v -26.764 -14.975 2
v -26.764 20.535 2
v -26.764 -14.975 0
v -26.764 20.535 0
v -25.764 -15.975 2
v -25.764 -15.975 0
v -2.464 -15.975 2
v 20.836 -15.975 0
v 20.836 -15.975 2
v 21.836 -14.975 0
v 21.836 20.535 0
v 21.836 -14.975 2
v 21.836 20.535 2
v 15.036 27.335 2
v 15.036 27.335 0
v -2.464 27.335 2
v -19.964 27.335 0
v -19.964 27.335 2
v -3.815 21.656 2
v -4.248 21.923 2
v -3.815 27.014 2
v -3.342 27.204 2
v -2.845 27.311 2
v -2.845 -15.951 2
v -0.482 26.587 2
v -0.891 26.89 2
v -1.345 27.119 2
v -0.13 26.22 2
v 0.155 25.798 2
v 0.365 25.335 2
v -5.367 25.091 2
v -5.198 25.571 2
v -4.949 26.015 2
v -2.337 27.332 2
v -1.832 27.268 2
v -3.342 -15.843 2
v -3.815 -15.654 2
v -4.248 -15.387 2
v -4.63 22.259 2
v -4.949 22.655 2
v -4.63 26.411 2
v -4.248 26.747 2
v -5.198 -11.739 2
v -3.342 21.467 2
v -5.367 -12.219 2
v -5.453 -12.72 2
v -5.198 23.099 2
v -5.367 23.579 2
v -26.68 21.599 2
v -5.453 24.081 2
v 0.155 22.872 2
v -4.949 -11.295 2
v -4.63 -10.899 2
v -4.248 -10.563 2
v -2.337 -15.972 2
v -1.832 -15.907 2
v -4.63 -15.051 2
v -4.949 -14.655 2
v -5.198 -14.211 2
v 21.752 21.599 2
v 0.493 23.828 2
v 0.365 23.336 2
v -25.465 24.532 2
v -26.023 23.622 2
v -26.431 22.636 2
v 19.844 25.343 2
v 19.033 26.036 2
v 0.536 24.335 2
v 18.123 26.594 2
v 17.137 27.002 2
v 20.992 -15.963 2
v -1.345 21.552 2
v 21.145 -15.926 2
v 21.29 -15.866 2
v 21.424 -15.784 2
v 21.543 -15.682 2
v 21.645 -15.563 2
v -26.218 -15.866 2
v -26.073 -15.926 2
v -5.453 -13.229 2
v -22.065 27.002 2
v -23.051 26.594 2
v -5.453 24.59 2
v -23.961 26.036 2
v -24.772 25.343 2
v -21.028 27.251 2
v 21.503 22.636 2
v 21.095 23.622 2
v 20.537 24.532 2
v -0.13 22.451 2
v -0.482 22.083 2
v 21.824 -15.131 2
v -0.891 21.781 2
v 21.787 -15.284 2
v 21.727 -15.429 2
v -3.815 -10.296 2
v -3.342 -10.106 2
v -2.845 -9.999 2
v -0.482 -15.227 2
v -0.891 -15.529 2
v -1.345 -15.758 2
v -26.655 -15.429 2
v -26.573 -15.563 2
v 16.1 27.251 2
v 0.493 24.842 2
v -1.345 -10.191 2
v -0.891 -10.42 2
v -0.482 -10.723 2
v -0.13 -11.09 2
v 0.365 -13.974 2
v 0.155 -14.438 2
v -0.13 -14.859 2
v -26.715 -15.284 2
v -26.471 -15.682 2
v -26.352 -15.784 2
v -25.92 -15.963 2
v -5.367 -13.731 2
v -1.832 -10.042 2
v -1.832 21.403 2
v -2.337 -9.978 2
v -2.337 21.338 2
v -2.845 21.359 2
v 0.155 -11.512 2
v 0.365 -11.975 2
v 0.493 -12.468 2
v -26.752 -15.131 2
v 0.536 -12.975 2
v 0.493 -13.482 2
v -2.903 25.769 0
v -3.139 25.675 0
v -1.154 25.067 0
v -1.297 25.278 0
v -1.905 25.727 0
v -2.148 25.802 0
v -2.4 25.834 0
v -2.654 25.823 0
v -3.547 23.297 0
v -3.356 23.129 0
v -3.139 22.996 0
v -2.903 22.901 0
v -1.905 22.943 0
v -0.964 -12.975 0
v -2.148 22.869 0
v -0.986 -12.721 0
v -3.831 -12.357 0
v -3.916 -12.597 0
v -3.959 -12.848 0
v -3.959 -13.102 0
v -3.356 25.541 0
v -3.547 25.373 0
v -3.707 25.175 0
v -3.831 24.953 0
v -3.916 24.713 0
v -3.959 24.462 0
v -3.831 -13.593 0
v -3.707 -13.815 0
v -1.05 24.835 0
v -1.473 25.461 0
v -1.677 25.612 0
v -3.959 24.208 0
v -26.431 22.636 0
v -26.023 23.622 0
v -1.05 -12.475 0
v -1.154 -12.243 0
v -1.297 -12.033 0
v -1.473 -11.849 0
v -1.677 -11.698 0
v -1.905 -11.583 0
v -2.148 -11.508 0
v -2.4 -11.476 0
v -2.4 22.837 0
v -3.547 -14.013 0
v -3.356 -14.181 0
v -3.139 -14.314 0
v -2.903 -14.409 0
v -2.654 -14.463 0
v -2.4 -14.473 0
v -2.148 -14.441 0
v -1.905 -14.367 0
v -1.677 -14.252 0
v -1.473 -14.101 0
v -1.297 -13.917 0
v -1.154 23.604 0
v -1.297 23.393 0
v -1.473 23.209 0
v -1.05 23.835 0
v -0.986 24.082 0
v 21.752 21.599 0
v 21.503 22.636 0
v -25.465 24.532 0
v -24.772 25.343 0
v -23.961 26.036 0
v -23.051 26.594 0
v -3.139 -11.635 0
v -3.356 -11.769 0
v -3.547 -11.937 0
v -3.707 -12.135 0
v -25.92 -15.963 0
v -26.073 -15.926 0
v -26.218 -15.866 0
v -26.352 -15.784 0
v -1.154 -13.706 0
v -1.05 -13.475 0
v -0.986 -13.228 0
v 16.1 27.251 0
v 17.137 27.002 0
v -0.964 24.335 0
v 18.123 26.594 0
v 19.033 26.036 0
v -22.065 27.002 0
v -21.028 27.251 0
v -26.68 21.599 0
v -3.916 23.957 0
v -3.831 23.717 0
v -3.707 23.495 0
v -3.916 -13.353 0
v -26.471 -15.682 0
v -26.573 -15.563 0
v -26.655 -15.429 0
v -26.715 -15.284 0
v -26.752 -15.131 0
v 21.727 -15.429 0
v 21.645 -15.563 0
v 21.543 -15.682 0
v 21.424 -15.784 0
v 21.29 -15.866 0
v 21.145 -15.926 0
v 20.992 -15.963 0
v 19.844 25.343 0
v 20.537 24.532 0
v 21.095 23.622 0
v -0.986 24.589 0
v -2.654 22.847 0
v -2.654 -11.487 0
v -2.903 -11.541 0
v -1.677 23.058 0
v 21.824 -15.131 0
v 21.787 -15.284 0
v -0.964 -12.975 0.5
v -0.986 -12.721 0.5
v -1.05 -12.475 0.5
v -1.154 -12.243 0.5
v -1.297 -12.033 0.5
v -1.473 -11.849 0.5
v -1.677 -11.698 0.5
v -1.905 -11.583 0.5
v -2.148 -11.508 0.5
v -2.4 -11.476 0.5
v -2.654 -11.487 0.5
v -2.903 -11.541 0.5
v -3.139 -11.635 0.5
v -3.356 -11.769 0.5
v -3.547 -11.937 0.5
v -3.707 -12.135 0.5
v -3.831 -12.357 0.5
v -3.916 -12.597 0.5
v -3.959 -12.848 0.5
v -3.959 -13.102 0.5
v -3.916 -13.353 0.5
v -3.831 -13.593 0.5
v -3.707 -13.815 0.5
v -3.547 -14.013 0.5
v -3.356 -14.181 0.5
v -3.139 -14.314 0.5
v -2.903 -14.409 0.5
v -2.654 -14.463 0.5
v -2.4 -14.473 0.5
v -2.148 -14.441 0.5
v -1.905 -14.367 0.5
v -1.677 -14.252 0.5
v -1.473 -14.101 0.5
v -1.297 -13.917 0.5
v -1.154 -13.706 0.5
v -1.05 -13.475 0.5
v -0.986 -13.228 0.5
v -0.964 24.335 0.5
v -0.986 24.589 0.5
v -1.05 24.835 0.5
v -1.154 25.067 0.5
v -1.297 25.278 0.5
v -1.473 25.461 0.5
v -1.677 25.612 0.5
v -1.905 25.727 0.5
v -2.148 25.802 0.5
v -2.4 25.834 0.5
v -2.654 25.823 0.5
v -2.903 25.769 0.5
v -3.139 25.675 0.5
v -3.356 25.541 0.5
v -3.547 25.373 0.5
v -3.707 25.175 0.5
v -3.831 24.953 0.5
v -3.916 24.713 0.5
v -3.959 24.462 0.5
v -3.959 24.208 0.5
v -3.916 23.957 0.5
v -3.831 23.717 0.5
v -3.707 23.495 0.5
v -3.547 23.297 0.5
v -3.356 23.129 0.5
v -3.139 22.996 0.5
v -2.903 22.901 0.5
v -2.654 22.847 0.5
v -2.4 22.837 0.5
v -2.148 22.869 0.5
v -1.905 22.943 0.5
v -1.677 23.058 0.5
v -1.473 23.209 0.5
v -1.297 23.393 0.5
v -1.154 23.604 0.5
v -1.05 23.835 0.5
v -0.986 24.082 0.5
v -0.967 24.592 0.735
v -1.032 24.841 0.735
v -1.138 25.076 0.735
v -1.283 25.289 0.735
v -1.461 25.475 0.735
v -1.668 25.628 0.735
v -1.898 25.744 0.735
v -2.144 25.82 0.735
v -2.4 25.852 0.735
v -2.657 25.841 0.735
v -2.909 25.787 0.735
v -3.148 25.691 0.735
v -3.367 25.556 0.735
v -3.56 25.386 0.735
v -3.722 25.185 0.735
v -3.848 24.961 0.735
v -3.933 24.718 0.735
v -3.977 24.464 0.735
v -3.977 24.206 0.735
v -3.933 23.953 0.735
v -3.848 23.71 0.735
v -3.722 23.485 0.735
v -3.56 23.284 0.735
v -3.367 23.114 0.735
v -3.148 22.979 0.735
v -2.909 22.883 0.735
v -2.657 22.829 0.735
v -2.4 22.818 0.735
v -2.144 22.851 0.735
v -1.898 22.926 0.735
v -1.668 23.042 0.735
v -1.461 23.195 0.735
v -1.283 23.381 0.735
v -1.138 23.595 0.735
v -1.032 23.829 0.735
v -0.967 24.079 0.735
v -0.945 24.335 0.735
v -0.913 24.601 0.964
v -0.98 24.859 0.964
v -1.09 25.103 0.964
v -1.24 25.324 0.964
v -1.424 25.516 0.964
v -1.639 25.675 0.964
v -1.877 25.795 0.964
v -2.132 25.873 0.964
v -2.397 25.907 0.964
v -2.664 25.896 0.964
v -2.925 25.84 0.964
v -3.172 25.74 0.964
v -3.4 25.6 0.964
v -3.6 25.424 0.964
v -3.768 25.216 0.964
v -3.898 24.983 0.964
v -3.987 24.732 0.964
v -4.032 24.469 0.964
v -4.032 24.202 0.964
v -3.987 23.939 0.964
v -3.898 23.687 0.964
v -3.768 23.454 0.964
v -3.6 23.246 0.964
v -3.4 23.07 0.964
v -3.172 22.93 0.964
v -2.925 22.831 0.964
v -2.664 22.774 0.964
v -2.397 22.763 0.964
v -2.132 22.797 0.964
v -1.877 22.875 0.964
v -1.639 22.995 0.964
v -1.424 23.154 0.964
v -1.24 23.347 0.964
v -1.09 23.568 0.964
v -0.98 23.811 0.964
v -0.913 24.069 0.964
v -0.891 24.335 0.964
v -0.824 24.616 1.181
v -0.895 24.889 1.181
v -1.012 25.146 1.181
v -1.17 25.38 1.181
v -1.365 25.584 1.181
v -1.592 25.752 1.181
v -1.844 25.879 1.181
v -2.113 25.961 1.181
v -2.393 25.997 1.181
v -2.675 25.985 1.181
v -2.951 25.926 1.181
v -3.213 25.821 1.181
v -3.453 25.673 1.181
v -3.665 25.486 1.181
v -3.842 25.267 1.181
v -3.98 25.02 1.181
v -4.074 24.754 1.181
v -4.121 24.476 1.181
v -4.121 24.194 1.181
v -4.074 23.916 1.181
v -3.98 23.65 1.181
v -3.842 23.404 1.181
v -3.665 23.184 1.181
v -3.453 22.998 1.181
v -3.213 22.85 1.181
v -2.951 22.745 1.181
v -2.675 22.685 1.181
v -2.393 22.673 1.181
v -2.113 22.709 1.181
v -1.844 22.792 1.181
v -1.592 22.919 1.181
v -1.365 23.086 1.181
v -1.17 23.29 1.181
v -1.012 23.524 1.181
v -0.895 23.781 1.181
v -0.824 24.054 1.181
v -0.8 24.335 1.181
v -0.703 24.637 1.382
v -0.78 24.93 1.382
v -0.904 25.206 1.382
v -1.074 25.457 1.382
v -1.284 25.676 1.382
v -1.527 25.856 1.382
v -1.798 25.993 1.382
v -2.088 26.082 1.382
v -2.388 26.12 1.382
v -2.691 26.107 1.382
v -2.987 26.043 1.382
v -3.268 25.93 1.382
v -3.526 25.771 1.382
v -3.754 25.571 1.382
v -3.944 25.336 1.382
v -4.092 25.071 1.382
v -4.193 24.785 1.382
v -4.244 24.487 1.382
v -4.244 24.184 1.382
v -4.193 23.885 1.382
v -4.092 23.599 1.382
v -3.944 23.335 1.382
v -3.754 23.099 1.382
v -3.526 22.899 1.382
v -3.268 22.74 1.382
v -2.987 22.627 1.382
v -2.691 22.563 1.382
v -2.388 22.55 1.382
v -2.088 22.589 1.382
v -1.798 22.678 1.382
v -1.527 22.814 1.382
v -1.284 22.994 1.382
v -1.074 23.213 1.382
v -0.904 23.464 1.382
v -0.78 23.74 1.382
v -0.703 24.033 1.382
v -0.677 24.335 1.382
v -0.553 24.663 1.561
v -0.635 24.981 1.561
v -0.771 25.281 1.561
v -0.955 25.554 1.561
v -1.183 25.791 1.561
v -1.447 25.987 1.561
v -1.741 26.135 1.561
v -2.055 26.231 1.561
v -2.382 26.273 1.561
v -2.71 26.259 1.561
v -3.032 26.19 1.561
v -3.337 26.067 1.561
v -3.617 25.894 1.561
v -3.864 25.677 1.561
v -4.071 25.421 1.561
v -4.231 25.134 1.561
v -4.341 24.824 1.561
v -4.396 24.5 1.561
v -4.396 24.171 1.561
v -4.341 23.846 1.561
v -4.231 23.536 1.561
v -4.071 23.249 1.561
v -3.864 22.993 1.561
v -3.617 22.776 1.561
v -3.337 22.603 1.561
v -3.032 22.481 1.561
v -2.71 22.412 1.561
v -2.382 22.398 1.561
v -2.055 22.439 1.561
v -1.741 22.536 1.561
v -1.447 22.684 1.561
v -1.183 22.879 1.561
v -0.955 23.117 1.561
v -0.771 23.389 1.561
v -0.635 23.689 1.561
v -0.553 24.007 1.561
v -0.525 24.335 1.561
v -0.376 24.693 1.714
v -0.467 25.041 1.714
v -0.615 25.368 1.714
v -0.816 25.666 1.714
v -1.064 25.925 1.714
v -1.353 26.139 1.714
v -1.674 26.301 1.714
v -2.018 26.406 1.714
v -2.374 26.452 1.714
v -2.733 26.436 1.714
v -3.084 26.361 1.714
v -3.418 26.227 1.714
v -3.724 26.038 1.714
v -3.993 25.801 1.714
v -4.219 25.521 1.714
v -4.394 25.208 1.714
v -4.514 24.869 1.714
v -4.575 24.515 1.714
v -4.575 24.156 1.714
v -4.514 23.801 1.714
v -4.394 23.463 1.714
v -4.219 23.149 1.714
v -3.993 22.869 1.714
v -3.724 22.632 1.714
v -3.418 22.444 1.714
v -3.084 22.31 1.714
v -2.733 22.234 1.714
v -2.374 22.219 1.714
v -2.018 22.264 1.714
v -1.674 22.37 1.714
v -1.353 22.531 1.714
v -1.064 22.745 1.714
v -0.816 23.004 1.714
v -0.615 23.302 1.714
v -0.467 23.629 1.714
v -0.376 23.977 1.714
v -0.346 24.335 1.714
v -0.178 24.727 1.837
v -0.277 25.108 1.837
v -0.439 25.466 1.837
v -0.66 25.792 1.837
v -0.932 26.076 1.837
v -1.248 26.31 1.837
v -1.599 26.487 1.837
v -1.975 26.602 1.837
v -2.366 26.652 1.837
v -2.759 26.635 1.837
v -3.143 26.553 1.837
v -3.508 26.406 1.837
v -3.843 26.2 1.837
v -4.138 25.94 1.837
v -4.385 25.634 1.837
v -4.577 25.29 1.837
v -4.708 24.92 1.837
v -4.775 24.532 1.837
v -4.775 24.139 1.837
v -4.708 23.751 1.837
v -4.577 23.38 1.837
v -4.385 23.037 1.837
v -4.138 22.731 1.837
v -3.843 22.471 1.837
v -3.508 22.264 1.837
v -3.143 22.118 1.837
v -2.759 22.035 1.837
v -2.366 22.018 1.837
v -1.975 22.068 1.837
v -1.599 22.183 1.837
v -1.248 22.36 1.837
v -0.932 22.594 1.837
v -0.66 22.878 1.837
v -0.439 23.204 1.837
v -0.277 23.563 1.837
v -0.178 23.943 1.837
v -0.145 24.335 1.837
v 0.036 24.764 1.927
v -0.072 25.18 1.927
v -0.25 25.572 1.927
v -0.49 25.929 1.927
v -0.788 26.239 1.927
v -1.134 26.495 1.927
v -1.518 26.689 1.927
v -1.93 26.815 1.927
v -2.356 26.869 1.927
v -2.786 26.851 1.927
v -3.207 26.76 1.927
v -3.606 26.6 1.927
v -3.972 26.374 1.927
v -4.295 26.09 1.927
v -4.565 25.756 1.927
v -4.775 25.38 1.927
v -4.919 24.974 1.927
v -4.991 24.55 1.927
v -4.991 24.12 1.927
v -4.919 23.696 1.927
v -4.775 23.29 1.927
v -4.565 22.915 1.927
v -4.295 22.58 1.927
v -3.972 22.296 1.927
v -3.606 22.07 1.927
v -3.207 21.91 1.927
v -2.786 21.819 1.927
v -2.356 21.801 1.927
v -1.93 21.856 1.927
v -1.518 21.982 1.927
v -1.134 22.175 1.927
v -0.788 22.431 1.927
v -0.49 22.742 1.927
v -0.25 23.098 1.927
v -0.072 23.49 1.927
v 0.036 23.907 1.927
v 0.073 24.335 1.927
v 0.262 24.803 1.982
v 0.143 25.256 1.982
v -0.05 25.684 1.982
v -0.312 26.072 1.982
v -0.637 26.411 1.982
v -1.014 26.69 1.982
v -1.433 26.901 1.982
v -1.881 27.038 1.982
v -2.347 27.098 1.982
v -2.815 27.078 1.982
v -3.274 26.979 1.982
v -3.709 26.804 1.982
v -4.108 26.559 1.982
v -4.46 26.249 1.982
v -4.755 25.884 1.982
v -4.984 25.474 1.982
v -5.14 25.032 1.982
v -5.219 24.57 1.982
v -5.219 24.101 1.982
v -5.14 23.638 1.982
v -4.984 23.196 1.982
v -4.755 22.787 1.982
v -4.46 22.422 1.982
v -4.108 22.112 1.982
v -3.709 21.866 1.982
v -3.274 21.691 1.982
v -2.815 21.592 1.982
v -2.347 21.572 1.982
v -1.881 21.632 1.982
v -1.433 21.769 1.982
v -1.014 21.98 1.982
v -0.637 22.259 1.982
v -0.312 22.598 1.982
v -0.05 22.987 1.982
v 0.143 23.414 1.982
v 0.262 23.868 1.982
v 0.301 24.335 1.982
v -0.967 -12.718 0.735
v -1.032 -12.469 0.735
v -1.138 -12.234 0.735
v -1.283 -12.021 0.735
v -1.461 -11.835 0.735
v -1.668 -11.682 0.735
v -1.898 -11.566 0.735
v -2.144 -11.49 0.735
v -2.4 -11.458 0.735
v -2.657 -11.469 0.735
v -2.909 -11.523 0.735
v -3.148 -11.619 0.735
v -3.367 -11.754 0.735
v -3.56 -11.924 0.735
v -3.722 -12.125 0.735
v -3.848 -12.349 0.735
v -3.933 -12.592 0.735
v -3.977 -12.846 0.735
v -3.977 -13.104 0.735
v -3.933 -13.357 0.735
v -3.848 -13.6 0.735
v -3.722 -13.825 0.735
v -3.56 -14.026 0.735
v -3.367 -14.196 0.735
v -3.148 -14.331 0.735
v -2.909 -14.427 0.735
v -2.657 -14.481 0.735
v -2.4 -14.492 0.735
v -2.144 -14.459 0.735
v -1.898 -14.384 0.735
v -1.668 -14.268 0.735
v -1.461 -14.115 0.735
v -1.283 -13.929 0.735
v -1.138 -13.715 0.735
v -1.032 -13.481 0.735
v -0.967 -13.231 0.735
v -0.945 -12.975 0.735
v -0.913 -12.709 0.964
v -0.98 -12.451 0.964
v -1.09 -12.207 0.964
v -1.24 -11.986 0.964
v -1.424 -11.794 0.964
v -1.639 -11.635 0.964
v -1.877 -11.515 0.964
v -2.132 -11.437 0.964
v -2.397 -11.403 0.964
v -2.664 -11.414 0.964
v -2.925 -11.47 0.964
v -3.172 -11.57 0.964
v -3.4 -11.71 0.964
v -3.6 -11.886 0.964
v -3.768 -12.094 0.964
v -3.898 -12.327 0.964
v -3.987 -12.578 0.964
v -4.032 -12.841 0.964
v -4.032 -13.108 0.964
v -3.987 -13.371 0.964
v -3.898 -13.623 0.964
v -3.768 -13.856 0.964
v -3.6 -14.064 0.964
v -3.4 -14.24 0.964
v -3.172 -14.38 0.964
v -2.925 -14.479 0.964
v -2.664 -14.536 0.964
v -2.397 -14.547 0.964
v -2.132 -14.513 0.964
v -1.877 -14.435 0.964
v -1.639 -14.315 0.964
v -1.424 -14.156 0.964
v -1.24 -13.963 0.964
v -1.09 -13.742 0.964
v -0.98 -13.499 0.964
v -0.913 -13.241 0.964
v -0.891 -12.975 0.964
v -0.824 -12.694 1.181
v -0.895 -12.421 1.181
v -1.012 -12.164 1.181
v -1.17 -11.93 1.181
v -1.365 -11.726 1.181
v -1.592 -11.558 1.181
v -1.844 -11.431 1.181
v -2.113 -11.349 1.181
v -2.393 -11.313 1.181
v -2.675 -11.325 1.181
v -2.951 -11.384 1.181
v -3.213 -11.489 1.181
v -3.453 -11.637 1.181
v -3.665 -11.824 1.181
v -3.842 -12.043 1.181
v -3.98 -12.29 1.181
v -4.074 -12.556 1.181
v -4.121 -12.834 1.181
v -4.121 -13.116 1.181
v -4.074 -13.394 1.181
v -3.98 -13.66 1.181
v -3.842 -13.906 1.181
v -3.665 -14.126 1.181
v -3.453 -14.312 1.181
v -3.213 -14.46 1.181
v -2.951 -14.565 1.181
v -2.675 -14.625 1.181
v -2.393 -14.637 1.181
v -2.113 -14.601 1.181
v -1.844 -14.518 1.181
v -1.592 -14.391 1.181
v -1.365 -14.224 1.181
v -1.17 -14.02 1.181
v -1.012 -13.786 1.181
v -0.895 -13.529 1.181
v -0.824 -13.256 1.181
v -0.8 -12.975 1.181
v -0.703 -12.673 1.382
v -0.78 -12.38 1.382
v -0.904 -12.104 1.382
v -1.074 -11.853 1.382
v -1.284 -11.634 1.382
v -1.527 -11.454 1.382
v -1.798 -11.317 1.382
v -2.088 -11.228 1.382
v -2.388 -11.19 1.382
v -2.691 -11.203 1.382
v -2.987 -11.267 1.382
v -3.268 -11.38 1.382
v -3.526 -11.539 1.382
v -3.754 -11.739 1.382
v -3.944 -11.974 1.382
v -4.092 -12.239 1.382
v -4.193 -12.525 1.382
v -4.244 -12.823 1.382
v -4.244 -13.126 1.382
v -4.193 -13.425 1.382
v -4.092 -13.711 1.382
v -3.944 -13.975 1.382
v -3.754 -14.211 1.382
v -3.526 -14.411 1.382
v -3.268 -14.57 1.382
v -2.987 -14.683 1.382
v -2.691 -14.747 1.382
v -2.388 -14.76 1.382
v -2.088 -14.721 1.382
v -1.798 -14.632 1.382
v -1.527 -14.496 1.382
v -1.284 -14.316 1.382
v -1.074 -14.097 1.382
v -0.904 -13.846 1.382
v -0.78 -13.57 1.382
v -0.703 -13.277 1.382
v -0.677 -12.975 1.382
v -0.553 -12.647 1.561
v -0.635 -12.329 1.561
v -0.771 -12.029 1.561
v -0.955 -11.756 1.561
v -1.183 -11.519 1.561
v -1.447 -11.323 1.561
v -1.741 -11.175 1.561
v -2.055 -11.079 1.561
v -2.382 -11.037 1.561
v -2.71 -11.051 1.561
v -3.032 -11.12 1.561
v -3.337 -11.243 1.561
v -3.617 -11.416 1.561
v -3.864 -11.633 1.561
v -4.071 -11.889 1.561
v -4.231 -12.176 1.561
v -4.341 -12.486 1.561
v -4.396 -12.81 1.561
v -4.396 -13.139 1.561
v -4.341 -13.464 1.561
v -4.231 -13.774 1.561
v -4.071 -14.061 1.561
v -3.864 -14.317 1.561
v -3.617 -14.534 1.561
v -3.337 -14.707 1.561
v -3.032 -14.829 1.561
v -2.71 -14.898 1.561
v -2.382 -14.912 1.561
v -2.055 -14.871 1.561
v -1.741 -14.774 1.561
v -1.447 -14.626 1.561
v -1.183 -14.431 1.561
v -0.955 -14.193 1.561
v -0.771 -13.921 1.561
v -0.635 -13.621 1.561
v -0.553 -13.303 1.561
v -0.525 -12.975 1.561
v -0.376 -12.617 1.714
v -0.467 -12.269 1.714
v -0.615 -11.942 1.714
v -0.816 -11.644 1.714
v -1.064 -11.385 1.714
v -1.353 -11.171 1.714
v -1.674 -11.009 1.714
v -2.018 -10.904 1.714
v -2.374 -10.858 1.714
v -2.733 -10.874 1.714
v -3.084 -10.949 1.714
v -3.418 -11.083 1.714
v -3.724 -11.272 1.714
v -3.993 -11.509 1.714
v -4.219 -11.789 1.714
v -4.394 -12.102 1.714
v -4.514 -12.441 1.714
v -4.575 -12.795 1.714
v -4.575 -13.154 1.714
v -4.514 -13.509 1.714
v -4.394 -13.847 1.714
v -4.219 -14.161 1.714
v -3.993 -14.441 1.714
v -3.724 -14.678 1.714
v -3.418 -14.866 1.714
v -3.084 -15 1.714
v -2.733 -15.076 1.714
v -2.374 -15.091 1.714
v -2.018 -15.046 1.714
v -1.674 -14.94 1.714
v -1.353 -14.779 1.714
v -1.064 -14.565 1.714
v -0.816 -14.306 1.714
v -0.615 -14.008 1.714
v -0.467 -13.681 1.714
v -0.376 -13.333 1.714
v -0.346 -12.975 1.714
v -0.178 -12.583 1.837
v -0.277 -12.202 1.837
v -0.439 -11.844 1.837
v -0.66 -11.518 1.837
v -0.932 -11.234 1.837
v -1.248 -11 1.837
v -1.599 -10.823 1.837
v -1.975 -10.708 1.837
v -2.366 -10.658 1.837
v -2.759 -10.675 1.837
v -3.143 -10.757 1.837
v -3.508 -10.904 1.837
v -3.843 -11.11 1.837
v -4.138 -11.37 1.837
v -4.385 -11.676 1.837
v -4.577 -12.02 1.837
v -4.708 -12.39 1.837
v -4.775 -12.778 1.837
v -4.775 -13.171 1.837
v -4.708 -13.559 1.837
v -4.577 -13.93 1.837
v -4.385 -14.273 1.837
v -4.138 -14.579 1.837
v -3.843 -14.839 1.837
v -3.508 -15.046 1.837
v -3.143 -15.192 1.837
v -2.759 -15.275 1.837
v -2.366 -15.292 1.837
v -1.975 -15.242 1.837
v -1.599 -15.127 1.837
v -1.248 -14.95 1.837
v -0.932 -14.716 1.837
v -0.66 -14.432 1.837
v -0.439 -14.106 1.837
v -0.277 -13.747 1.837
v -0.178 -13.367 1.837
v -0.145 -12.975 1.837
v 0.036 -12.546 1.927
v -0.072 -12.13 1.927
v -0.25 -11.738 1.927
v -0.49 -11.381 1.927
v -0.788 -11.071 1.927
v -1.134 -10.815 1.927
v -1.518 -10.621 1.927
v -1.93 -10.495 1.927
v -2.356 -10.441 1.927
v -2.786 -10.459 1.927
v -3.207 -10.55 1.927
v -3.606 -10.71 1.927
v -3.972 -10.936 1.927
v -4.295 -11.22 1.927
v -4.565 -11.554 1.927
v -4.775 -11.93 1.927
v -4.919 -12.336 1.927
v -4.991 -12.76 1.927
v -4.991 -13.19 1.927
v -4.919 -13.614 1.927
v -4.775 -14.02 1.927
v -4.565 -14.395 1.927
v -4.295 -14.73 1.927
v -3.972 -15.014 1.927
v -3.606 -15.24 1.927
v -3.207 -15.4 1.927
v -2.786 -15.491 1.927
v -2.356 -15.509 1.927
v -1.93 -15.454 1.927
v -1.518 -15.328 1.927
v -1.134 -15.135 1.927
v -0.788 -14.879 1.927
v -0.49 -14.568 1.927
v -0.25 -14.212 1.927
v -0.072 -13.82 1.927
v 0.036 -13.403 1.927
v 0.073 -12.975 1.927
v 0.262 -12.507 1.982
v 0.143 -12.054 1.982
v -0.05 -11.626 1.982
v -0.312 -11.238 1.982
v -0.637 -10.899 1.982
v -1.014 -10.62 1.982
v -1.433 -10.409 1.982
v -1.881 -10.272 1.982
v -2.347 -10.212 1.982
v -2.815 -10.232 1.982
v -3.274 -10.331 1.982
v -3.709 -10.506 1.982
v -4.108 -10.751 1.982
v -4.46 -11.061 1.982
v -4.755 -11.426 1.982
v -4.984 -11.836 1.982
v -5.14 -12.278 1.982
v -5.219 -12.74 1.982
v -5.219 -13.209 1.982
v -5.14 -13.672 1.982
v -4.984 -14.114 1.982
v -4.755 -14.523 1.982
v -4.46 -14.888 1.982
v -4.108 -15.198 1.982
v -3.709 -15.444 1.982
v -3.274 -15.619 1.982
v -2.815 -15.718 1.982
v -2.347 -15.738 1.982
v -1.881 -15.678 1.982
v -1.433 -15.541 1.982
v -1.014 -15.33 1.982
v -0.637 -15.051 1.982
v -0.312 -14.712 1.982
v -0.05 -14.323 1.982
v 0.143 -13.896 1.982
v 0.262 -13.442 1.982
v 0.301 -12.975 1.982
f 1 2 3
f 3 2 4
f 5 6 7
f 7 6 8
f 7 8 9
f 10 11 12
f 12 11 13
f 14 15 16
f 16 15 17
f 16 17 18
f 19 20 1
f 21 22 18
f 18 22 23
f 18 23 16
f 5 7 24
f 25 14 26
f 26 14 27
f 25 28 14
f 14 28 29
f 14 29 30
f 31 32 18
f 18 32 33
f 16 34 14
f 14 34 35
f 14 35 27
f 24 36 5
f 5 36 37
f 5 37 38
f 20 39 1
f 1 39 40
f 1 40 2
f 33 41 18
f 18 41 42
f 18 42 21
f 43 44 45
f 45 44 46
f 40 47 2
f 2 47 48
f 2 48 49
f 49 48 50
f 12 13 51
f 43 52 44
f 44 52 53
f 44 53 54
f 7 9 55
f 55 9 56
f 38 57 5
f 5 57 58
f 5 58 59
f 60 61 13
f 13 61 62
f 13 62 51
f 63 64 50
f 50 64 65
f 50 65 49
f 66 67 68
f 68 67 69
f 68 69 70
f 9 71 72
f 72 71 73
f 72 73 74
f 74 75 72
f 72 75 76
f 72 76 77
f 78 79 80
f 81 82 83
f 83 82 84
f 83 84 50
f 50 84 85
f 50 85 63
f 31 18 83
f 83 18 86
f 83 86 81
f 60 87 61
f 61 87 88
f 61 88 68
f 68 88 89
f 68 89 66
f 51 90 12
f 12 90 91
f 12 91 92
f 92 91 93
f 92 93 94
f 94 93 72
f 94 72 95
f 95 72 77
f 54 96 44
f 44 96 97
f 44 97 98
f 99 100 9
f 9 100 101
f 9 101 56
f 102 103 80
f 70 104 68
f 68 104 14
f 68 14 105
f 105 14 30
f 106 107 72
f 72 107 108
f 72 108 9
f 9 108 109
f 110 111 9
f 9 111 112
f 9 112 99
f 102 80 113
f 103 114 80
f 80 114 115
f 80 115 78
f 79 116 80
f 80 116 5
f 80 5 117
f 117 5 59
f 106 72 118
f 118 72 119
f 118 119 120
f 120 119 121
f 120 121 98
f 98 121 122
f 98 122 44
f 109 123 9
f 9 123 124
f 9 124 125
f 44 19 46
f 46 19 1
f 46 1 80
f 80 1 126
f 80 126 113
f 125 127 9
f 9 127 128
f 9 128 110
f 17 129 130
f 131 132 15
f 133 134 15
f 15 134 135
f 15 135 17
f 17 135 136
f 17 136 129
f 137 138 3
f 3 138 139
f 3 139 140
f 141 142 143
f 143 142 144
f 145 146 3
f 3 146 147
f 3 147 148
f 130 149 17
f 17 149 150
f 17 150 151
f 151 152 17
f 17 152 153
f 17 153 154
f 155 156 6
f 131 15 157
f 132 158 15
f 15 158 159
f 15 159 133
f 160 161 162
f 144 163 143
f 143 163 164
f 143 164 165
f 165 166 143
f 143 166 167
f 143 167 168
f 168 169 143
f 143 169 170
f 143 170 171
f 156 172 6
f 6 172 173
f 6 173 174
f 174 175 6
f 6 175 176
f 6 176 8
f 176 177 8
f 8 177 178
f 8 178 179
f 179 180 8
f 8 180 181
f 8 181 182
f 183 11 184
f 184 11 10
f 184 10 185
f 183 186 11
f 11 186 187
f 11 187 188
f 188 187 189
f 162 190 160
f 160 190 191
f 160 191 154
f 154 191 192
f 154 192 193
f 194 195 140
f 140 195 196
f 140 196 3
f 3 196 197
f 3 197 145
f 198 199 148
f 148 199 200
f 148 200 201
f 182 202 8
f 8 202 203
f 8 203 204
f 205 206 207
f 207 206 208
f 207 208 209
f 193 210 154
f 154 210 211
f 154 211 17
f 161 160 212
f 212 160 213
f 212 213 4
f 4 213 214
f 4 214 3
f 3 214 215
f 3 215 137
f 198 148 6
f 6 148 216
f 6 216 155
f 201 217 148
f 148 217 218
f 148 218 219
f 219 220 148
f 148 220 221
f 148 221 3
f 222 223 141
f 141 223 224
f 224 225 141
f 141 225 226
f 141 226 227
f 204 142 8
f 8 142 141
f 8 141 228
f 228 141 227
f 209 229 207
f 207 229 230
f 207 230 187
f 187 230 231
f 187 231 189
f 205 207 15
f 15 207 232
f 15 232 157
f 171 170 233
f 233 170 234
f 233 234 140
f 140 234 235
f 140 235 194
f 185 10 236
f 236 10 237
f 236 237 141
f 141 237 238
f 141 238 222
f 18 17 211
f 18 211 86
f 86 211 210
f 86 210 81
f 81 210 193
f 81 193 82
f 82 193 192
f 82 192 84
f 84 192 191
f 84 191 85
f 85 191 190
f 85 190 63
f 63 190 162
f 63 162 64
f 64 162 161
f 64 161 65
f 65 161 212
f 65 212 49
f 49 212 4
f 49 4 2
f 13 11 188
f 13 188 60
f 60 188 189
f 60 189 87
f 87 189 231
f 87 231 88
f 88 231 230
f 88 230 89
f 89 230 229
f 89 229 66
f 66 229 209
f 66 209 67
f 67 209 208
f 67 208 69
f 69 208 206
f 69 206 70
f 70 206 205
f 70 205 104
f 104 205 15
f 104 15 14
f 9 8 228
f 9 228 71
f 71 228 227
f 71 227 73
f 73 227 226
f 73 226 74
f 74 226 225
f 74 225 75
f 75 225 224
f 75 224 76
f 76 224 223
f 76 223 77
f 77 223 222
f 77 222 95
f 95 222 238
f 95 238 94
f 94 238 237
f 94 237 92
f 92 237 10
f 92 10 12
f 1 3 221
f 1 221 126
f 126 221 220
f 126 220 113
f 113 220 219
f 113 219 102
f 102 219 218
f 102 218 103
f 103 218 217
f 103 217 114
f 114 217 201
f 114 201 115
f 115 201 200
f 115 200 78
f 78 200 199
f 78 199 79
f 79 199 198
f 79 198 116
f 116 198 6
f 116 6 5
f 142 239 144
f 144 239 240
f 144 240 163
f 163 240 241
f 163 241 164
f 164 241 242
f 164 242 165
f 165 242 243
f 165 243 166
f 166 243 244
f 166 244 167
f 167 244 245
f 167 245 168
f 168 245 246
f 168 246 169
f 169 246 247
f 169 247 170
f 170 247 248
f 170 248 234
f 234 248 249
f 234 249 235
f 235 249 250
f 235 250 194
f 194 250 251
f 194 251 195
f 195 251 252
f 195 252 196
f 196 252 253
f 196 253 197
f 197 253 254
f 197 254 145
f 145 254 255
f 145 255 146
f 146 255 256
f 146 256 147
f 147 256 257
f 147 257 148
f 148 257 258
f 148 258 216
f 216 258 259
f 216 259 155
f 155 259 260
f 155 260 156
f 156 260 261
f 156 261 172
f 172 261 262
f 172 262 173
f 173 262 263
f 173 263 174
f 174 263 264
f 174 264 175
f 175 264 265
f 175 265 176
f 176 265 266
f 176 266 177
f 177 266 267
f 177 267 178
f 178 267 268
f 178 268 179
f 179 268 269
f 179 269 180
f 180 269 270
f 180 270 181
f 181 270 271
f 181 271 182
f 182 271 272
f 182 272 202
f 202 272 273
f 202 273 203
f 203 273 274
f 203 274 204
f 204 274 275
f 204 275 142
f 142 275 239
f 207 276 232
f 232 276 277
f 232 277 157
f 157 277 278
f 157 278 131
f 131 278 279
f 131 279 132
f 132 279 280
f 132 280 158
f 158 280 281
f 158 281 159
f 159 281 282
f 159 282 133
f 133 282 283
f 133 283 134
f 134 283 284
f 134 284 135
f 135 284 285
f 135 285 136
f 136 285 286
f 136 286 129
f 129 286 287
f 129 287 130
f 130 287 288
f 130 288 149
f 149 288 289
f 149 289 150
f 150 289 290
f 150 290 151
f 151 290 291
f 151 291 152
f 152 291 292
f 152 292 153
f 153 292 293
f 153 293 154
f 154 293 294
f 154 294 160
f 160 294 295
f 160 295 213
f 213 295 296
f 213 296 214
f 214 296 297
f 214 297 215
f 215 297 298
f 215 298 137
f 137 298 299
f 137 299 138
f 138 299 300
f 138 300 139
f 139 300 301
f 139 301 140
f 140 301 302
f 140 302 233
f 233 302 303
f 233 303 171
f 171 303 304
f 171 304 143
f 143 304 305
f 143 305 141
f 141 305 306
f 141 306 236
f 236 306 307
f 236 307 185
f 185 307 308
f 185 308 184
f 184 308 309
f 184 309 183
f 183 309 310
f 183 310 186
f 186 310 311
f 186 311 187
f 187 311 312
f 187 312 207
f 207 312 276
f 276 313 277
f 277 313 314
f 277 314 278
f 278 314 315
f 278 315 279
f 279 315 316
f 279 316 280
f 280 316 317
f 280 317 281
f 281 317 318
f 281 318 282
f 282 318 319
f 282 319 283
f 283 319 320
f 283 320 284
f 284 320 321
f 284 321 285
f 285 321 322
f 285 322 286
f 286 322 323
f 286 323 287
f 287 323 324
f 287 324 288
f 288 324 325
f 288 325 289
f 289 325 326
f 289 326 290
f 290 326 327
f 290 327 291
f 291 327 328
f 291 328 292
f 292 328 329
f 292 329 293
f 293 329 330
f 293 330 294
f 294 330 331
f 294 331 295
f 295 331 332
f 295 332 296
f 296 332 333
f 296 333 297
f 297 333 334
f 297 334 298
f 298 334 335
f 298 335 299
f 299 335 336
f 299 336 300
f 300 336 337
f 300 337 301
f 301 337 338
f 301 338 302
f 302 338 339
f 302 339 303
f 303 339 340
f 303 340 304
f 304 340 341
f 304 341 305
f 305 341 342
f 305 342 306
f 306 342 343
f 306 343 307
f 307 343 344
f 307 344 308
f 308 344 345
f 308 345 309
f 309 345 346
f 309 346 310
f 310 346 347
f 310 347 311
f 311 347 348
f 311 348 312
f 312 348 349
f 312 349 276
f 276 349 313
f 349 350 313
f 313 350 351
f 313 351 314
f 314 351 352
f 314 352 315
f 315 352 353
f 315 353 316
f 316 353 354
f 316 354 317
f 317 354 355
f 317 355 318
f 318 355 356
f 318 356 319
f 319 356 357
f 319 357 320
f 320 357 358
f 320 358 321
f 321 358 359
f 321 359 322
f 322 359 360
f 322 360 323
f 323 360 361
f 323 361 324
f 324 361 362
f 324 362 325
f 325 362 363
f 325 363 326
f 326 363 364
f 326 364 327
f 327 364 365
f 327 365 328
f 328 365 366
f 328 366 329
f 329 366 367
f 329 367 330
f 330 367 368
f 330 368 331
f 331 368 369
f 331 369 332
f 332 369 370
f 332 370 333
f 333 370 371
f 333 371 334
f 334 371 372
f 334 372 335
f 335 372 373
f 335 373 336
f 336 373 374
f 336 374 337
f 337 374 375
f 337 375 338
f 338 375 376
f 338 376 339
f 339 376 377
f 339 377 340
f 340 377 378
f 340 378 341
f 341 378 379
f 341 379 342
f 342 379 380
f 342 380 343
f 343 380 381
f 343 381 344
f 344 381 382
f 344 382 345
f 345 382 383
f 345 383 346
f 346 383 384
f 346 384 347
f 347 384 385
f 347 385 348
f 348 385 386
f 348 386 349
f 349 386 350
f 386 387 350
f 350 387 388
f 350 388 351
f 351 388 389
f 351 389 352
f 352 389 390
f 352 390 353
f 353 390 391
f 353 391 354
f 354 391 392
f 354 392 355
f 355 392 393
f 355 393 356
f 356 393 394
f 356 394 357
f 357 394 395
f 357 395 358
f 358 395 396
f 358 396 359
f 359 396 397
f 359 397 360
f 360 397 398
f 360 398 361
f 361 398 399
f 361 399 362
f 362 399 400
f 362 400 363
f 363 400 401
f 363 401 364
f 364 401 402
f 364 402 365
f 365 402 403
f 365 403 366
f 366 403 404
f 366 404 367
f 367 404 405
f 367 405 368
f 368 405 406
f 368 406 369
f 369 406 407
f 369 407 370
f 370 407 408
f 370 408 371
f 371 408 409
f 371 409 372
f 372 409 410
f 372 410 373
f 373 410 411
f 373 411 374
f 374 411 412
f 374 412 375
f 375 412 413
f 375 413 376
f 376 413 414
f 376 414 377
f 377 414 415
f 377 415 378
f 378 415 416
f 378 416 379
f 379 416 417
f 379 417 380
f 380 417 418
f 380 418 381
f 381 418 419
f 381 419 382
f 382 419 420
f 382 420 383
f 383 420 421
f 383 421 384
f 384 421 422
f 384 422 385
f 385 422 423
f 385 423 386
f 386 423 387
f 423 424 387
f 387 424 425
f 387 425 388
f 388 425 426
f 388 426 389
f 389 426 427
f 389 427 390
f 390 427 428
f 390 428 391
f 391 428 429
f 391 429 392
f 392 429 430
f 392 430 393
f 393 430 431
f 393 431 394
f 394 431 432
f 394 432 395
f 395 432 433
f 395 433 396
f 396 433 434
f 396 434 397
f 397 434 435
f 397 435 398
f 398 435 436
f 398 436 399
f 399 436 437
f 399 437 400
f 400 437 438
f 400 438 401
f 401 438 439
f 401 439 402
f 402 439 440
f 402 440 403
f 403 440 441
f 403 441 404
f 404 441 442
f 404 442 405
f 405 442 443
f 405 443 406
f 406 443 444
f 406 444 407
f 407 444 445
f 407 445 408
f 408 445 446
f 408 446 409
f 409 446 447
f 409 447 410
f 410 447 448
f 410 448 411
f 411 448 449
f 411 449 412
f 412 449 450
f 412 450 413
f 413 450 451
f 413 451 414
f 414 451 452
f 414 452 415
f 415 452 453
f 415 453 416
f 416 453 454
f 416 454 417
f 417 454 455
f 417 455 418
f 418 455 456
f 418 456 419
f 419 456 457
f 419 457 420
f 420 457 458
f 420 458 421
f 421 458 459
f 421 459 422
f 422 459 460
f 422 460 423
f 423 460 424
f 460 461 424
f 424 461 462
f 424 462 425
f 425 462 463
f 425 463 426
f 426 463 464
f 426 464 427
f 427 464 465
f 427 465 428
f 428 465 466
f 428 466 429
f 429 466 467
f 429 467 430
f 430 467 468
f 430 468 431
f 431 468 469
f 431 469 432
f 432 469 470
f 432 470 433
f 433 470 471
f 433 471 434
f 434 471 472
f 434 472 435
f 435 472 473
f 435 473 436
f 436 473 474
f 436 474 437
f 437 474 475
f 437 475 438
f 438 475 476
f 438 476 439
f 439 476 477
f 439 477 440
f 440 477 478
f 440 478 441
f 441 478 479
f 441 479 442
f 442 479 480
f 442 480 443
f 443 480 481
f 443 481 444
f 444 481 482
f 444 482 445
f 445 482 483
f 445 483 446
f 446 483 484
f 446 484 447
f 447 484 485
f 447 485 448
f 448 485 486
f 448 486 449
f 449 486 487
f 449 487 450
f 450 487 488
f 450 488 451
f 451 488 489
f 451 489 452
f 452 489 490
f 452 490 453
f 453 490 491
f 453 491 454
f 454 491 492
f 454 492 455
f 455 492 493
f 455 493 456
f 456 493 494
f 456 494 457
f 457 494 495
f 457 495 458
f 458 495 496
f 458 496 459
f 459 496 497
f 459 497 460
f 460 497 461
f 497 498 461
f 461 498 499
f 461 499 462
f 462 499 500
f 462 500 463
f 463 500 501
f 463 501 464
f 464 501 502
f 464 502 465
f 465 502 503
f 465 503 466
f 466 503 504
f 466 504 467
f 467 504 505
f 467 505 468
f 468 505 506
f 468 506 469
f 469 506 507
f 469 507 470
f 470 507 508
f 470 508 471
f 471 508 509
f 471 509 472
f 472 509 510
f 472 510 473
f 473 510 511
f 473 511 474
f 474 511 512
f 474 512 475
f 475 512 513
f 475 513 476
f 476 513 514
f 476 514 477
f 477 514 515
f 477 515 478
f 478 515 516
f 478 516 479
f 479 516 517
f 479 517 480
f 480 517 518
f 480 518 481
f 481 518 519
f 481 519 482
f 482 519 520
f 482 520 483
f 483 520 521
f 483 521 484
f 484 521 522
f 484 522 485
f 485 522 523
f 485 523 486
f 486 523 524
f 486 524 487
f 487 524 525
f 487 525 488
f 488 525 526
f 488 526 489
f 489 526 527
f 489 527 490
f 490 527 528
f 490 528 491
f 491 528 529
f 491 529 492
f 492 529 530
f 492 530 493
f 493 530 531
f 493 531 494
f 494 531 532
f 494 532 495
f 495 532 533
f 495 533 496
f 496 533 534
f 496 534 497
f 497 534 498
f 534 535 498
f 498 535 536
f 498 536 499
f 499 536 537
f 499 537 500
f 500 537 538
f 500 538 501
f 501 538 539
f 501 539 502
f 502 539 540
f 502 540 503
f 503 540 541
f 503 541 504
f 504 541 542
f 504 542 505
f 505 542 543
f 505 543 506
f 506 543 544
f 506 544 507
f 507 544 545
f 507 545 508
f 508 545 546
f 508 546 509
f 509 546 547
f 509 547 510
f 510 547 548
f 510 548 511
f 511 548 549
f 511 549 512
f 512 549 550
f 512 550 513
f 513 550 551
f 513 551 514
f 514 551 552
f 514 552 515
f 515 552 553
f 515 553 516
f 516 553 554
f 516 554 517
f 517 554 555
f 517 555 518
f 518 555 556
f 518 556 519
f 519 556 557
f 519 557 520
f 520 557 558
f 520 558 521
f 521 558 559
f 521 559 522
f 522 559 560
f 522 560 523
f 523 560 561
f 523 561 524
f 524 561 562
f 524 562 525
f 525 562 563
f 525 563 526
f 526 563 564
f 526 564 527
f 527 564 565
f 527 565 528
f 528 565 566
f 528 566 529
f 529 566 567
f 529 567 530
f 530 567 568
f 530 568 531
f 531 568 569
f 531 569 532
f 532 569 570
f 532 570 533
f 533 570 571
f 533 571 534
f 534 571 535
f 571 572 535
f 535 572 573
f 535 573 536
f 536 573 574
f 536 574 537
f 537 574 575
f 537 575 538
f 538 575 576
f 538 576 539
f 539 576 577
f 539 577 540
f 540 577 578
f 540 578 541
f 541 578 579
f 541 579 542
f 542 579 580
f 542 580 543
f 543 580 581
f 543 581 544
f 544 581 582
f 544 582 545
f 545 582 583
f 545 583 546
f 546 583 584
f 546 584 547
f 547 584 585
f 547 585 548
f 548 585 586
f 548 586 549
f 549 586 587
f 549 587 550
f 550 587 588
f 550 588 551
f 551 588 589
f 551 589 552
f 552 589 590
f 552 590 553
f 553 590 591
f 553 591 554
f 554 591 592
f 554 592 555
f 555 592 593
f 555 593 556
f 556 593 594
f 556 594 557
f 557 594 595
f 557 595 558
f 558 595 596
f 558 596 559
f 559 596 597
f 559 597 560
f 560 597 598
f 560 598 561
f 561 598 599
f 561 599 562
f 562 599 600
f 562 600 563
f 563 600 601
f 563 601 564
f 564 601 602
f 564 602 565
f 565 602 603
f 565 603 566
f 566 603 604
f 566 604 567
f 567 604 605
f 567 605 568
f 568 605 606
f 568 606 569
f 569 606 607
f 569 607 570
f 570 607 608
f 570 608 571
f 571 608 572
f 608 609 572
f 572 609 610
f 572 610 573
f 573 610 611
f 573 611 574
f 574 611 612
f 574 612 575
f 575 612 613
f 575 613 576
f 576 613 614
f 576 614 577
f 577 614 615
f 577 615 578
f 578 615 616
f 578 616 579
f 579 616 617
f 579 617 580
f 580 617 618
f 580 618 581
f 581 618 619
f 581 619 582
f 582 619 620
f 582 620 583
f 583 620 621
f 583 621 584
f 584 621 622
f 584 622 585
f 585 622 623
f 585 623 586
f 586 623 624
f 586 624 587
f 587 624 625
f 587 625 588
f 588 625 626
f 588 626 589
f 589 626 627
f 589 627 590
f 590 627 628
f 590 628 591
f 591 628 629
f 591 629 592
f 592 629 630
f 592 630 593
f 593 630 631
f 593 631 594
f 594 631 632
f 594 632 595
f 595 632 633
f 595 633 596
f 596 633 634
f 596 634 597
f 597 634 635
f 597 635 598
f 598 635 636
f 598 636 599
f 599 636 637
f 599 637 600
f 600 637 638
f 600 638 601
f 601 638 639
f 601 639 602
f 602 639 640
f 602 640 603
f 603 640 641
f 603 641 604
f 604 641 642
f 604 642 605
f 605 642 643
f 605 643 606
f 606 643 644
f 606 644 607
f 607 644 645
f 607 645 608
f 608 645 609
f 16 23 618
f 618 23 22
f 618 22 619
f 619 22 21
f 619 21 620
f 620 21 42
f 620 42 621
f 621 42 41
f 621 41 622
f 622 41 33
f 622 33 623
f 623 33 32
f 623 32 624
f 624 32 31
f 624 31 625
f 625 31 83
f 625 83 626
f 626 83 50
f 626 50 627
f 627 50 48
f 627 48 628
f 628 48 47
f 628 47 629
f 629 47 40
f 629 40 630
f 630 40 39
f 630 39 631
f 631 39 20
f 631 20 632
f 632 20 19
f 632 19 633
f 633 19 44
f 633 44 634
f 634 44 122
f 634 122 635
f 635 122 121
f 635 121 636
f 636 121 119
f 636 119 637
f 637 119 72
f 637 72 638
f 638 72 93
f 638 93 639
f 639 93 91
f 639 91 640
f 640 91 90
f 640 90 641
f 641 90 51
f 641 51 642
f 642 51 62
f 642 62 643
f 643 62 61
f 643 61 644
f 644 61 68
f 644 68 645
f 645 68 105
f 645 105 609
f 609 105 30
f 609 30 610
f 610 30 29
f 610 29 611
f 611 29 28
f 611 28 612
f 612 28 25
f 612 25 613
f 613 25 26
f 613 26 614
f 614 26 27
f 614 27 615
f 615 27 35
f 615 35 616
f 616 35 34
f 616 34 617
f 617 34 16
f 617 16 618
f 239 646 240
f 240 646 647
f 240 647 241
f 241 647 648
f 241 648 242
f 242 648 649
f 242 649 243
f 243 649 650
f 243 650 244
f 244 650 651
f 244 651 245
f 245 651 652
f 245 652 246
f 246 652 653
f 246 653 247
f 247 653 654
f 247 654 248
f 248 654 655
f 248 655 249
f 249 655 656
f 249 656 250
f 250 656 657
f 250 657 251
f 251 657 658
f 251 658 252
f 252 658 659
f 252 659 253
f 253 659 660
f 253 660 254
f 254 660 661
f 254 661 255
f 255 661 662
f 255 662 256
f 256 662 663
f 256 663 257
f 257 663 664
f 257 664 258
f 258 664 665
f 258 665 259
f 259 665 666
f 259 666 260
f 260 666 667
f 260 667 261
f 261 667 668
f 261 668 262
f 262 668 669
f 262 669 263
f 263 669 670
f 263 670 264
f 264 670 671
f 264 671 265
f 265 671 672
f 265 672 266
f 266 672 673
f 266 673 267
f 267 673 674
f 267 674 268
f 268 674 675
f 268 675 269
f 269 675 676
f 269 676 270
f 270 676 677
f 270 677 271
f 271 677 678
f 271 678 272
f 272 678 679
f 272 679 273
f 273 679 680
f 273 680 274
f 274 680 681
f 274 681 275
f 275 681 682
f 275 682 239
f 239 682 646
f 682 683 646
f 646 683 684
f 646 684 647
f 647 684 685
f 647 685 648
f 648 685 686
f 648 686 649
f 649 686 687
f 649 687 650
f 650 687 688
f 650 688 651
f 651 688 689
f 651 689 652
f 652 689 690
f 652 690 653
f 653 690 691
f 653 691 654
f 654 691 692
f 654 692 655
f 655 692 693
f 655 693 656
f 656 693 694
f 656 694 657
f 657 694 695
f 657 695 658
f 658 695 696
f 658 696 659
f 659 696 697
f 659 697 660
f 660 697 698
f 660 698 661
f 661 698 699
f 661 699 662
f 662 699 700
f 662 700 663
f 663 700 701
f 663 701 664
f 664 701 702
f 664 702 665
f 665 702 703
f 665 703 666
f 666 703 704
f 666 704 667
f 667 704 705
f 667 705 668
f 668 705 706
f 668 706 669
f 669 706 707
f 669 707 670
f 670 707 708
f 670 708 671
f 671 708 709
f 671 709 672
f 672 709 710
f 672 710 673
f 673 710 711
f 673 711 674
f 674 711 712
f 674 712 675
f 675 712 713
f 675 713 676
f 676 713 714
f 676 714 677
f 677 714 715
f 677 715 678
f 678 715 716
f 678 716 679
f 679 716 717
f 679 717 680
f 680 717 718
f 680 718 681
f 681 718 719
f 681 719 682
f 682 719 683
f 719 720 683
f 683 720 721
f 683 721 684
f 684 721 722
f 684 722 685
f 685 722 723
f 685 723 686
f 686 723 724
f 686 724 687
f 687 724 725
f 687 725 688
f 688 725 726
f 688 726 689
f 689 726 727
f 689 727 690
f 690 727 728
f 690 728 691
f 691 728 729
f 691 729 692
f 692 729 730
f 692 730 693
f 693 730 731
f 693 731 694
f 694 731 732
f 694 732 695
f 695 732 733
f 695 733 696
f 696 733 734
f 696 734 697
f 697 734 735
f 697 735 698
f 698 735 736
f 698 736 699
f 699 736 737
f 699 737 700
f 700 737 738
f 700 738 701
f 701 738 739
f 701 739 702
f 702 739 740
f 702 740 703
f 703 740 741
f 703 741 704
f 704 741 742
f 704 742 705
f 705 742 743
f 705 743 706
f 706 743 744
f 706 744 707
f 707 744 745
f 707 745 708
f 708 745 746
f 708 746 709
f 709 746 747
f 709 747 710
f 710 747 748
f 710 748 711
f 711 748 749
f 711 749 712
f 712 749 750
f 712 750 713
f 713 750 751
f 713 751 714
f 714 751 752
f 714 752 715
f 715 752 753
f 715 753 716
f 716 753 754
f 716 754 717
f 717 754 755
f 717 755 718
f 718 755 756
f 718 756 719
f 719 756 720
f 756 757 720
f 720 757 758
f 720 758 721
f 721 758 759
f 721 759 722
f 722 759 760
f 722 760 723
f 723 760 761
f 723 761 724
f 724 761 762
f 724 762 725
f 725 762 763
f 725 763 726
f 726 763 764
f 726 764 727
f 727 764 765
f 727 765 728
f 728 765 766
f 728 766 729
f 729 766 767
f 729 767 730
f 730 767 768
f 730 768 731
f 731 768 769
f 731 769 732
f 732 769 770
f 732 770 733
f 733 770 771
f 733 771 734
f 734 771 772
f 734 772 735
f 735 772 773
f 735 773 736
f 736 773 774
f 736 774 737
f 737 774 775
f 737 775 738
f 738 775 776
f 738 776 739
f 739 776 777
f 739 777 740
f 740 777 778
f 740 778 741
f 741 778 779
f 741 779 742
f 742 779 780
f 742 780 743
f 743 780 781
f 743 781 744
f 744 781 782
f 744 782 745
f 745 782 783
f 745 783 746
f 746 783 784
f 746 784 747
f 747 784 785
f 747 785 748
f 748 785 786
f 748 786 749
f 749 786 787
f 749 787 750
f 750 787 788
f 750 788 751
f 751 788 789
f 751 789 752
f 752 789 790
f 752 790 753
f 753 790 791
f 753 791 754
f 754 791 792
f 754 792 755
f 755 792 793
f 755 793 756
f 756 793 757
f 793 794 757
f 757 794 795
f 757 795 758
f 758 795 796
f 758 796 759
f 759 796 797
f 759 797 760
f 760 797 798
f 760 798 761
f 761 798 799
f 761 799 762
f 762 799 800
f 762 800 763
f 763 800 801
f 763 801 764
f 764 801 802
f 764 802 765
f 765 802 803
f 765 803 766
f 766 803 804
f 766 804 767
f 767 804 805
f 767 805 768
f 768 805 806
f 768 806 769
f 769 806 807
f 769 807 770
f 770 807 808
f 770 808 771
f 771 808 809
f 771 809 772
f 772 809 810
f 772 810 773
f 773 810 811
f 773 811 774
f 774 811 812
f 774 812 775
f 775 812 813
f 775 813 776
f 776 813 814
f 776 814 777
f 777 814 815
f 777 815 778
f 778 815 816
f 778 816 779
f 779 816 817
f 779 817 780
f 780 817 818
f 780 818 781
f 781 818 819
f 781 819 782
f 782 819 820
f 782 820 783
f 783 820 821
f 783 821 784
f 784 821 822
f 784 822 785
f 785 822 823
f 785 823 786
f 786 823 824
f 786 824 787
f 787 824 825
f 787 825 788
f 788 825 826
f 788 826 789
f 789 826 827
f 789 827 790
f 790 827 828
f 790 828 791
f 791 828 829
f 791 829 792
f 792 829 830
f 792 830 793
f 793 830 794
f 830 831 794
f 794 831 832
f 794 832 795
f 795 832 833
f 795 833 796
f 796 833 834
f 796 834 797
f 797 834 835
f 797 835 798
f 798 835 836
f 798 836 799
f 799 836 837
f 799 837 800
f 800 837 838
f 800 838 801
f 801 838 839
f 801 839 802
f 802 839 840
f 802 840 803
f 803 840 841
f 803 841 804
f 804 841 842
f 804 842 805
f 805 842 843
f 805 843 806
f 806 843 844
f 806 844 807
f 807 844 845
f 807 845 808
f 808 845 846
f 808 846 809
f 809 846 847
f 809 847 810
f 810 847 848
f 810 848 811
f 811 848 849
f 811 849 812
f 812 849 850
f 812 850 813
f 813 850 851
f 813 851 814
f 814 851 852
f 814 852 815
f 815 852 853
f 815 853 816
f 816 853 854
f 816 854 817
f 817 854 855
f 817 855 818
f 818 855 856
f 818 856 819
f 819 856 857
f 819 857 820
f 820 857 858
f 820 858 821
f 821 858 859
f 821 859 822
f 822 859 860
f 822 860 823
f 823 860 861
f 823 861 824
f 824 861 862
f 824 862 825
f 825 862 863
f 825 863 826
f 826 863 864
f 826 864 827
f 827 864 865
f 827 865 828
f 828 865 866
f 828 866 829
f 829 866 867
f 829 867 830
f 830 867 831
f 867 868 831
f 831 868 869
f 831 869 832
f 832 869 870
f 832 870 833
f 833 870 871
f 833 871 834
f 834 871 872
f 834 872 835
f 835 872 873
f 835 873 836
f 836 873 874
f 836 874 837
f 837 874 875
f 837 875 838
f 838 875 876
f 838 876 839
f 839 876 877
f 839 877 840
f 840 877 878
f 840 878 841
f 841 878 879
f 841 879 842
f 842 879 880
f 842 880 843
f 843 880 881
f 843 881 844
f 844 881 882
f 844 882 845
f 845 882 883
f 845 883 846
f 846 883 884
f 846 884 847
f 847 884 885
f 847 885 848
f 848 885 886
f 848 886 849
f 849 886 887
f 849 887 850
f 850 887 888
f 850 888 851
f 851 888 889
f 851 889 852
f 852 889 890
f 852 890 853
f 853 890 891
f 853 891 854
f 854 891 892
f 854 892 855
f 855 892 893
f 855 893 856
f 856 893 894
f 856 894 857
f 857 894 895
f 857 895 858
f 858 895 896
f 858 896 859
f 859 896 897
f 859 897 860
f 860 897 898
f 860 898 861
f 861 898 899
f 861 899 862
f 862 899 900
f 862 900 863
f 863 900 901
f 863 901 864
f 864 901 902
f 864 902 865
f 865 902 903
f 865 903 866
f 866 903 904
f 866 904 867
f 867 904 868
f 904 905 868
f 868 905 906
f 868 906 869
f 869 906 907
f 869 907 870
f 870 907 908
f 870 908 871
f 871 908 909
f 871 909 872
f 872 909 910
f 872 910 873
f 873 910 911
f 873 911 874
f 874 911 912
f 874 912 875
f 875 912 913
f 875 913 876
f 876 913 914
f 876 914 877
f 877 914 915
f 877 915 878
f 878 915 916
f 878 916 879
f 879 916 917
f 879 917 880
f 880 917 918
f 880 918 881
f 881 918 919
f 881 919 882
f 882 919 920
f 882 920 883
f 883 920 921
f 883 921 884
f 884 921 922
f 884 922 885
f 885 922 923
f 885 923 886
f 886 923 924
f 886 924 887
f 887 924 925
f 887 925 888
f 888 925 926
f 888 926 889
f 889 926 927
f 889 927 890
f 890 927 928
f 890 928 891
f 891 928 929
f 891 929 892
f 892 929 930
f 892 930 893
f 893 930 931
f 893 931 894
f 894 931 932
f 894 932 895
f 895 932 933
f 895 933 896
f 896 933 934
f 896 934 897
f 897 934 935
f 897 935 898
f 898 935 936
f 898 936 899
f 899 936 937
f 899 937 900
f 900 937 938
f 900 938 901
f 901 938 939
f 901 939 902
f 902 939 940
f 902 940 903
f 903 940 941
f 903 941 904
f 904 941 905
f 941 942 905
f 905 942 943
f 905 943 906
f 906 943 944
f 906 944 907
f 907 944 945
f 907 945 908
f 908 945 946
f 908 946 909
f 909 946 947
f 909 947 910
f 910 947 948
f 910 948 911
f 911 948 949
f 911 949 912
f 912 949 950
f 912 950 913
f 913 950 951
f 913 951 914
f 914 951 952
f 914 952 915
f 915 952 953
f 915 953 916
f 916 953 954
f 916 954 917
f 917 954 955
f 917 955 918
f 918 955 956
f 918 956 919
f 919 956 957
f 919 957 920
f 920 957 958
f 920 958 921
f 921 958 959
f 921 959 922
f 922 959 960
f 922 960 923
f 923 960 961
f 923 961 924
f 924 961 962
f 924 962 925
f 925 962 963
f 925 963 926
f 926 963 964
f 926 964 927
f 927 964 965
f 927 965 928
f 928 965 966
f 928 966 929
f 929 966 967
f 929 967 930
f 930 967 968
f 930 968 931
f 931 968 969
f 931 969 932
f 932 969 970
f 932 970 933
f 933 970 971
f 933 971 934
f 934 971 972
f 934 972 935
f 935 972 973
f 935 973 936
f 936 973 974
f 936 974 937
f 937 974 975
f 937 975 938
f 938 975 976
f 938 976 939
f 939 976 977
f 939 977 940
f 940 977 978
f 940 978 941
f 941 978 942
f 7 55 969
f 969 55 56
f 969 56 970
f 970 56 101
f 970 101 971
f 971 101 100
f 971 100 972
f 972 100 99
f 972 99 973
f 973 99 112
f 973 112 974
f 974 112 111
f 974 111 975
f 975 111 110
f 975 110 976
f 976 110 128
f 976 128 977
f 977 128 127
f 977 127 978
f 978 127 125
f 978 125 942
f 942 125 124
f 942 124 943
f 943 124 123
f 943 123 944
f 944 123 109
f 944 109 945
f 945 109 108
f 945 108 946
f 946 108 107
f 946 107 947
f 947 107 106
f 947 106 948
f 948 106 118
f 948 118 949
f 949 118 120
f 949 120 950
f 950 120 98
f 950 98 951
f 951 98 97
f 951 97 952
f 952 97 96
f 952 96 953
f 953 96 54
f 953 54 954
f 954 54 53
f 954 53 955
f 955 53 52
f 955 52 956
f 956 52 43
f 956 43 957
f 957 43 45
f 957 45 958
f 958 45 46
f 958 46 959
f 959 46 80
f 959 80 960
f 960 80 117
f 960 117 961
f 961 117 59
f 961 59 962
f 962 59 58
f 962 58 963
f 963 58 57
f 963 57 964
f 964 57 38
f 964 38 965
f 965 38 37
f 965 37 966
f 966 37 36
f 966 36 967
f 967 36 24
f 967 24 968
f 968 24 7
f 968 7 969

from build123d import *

# Parameters (mm, degrees)
SKIZZE2_W                       = 48.6
SKIZZE2_H                       = 43.31
AUFSATZ_LINEAR_AUSTRAGEN1_DEPTH = 2
VERRUNDUNG1_R                   = 6.8
VERRUNDUNG2_R                   = 1
SKIZZE4_R                       = 1.5
SCHNITT_LINEAR_AUSTRAGEN1_DEPTH = 11
VERRUNDUNG3_R                   = 1.5
VERRUNDUNG4_R                   = 1.5


with BuildPart() as part:
    # Skizze2 → Aufsatz-Linear austragen1 (new body)
    with BuildSketch(Plane.XY):
        with Locations((-2.463944442, 5.680169492)):
            Rectangle(SKIZZE2_W, SKIZZE2_H)
    extrude(amount=AUFSATZ_LINEAR_AUSTRAGEN1_DEPTH)

    # Verrundung1
    verrundung1_edges = [part.edges().sort_by_distance(p)[0] for p in [
        (-26.763944442, 27.335169492, 1),
        (21.836055558, 27.335169492, 1),
    ]]
    fillet(verrundung1_edges, radius=VERRUNDUNG1_R)

    # Verrundung2
    verrundung2_edges = [part.edges().sort_by_distance(p)[0] for p in [
        (21.836055558, -15.974830508, 1),
        (-26.763944442, -15.974830508, 1),
    ]]
    fillet(verrundung2_edges, radius=VERRUNDUNG2_R)

    # Skizze4 → Schnitt-Linear austragen1 (cut)
    with BuildSketch(Plane.XY.offset(2)):
        with Locations((-2.463944442, 24.335169492)):
            Circle(SKIZZE4_R)
        with Locations((-2.463944442, -12.974830508)):
            Circle(SKIZZE4_R)
    extrude(amount=-SCHNITT_LINEAR_AUSTRAGEN1_DEPTH, mode=Mode.SUBTRACT)

    # Verrundung3
    verrundung3_edges = [part.edges().sort_by_distance(p)[0] for p in [
        (-3.963944442, 24.335169492, 2),
    ]]
    fillet(verrundung3_edges, radius=VERRUNDUNG3_R - 0.0001)  # a hair under: the kernel refuses the full size

    # Verrundung4
    verrundung4_edges = [part.edges().sort_by_distance(p)[0] for p in [
        (-3.963944442, -12.974830508, 2),
    ]]
    fillet(verrundung4_edges, radius=VERRUNDUNG4_R - 0.0001)  # a hair under: the kernel refuses the full size


solid = part.part
